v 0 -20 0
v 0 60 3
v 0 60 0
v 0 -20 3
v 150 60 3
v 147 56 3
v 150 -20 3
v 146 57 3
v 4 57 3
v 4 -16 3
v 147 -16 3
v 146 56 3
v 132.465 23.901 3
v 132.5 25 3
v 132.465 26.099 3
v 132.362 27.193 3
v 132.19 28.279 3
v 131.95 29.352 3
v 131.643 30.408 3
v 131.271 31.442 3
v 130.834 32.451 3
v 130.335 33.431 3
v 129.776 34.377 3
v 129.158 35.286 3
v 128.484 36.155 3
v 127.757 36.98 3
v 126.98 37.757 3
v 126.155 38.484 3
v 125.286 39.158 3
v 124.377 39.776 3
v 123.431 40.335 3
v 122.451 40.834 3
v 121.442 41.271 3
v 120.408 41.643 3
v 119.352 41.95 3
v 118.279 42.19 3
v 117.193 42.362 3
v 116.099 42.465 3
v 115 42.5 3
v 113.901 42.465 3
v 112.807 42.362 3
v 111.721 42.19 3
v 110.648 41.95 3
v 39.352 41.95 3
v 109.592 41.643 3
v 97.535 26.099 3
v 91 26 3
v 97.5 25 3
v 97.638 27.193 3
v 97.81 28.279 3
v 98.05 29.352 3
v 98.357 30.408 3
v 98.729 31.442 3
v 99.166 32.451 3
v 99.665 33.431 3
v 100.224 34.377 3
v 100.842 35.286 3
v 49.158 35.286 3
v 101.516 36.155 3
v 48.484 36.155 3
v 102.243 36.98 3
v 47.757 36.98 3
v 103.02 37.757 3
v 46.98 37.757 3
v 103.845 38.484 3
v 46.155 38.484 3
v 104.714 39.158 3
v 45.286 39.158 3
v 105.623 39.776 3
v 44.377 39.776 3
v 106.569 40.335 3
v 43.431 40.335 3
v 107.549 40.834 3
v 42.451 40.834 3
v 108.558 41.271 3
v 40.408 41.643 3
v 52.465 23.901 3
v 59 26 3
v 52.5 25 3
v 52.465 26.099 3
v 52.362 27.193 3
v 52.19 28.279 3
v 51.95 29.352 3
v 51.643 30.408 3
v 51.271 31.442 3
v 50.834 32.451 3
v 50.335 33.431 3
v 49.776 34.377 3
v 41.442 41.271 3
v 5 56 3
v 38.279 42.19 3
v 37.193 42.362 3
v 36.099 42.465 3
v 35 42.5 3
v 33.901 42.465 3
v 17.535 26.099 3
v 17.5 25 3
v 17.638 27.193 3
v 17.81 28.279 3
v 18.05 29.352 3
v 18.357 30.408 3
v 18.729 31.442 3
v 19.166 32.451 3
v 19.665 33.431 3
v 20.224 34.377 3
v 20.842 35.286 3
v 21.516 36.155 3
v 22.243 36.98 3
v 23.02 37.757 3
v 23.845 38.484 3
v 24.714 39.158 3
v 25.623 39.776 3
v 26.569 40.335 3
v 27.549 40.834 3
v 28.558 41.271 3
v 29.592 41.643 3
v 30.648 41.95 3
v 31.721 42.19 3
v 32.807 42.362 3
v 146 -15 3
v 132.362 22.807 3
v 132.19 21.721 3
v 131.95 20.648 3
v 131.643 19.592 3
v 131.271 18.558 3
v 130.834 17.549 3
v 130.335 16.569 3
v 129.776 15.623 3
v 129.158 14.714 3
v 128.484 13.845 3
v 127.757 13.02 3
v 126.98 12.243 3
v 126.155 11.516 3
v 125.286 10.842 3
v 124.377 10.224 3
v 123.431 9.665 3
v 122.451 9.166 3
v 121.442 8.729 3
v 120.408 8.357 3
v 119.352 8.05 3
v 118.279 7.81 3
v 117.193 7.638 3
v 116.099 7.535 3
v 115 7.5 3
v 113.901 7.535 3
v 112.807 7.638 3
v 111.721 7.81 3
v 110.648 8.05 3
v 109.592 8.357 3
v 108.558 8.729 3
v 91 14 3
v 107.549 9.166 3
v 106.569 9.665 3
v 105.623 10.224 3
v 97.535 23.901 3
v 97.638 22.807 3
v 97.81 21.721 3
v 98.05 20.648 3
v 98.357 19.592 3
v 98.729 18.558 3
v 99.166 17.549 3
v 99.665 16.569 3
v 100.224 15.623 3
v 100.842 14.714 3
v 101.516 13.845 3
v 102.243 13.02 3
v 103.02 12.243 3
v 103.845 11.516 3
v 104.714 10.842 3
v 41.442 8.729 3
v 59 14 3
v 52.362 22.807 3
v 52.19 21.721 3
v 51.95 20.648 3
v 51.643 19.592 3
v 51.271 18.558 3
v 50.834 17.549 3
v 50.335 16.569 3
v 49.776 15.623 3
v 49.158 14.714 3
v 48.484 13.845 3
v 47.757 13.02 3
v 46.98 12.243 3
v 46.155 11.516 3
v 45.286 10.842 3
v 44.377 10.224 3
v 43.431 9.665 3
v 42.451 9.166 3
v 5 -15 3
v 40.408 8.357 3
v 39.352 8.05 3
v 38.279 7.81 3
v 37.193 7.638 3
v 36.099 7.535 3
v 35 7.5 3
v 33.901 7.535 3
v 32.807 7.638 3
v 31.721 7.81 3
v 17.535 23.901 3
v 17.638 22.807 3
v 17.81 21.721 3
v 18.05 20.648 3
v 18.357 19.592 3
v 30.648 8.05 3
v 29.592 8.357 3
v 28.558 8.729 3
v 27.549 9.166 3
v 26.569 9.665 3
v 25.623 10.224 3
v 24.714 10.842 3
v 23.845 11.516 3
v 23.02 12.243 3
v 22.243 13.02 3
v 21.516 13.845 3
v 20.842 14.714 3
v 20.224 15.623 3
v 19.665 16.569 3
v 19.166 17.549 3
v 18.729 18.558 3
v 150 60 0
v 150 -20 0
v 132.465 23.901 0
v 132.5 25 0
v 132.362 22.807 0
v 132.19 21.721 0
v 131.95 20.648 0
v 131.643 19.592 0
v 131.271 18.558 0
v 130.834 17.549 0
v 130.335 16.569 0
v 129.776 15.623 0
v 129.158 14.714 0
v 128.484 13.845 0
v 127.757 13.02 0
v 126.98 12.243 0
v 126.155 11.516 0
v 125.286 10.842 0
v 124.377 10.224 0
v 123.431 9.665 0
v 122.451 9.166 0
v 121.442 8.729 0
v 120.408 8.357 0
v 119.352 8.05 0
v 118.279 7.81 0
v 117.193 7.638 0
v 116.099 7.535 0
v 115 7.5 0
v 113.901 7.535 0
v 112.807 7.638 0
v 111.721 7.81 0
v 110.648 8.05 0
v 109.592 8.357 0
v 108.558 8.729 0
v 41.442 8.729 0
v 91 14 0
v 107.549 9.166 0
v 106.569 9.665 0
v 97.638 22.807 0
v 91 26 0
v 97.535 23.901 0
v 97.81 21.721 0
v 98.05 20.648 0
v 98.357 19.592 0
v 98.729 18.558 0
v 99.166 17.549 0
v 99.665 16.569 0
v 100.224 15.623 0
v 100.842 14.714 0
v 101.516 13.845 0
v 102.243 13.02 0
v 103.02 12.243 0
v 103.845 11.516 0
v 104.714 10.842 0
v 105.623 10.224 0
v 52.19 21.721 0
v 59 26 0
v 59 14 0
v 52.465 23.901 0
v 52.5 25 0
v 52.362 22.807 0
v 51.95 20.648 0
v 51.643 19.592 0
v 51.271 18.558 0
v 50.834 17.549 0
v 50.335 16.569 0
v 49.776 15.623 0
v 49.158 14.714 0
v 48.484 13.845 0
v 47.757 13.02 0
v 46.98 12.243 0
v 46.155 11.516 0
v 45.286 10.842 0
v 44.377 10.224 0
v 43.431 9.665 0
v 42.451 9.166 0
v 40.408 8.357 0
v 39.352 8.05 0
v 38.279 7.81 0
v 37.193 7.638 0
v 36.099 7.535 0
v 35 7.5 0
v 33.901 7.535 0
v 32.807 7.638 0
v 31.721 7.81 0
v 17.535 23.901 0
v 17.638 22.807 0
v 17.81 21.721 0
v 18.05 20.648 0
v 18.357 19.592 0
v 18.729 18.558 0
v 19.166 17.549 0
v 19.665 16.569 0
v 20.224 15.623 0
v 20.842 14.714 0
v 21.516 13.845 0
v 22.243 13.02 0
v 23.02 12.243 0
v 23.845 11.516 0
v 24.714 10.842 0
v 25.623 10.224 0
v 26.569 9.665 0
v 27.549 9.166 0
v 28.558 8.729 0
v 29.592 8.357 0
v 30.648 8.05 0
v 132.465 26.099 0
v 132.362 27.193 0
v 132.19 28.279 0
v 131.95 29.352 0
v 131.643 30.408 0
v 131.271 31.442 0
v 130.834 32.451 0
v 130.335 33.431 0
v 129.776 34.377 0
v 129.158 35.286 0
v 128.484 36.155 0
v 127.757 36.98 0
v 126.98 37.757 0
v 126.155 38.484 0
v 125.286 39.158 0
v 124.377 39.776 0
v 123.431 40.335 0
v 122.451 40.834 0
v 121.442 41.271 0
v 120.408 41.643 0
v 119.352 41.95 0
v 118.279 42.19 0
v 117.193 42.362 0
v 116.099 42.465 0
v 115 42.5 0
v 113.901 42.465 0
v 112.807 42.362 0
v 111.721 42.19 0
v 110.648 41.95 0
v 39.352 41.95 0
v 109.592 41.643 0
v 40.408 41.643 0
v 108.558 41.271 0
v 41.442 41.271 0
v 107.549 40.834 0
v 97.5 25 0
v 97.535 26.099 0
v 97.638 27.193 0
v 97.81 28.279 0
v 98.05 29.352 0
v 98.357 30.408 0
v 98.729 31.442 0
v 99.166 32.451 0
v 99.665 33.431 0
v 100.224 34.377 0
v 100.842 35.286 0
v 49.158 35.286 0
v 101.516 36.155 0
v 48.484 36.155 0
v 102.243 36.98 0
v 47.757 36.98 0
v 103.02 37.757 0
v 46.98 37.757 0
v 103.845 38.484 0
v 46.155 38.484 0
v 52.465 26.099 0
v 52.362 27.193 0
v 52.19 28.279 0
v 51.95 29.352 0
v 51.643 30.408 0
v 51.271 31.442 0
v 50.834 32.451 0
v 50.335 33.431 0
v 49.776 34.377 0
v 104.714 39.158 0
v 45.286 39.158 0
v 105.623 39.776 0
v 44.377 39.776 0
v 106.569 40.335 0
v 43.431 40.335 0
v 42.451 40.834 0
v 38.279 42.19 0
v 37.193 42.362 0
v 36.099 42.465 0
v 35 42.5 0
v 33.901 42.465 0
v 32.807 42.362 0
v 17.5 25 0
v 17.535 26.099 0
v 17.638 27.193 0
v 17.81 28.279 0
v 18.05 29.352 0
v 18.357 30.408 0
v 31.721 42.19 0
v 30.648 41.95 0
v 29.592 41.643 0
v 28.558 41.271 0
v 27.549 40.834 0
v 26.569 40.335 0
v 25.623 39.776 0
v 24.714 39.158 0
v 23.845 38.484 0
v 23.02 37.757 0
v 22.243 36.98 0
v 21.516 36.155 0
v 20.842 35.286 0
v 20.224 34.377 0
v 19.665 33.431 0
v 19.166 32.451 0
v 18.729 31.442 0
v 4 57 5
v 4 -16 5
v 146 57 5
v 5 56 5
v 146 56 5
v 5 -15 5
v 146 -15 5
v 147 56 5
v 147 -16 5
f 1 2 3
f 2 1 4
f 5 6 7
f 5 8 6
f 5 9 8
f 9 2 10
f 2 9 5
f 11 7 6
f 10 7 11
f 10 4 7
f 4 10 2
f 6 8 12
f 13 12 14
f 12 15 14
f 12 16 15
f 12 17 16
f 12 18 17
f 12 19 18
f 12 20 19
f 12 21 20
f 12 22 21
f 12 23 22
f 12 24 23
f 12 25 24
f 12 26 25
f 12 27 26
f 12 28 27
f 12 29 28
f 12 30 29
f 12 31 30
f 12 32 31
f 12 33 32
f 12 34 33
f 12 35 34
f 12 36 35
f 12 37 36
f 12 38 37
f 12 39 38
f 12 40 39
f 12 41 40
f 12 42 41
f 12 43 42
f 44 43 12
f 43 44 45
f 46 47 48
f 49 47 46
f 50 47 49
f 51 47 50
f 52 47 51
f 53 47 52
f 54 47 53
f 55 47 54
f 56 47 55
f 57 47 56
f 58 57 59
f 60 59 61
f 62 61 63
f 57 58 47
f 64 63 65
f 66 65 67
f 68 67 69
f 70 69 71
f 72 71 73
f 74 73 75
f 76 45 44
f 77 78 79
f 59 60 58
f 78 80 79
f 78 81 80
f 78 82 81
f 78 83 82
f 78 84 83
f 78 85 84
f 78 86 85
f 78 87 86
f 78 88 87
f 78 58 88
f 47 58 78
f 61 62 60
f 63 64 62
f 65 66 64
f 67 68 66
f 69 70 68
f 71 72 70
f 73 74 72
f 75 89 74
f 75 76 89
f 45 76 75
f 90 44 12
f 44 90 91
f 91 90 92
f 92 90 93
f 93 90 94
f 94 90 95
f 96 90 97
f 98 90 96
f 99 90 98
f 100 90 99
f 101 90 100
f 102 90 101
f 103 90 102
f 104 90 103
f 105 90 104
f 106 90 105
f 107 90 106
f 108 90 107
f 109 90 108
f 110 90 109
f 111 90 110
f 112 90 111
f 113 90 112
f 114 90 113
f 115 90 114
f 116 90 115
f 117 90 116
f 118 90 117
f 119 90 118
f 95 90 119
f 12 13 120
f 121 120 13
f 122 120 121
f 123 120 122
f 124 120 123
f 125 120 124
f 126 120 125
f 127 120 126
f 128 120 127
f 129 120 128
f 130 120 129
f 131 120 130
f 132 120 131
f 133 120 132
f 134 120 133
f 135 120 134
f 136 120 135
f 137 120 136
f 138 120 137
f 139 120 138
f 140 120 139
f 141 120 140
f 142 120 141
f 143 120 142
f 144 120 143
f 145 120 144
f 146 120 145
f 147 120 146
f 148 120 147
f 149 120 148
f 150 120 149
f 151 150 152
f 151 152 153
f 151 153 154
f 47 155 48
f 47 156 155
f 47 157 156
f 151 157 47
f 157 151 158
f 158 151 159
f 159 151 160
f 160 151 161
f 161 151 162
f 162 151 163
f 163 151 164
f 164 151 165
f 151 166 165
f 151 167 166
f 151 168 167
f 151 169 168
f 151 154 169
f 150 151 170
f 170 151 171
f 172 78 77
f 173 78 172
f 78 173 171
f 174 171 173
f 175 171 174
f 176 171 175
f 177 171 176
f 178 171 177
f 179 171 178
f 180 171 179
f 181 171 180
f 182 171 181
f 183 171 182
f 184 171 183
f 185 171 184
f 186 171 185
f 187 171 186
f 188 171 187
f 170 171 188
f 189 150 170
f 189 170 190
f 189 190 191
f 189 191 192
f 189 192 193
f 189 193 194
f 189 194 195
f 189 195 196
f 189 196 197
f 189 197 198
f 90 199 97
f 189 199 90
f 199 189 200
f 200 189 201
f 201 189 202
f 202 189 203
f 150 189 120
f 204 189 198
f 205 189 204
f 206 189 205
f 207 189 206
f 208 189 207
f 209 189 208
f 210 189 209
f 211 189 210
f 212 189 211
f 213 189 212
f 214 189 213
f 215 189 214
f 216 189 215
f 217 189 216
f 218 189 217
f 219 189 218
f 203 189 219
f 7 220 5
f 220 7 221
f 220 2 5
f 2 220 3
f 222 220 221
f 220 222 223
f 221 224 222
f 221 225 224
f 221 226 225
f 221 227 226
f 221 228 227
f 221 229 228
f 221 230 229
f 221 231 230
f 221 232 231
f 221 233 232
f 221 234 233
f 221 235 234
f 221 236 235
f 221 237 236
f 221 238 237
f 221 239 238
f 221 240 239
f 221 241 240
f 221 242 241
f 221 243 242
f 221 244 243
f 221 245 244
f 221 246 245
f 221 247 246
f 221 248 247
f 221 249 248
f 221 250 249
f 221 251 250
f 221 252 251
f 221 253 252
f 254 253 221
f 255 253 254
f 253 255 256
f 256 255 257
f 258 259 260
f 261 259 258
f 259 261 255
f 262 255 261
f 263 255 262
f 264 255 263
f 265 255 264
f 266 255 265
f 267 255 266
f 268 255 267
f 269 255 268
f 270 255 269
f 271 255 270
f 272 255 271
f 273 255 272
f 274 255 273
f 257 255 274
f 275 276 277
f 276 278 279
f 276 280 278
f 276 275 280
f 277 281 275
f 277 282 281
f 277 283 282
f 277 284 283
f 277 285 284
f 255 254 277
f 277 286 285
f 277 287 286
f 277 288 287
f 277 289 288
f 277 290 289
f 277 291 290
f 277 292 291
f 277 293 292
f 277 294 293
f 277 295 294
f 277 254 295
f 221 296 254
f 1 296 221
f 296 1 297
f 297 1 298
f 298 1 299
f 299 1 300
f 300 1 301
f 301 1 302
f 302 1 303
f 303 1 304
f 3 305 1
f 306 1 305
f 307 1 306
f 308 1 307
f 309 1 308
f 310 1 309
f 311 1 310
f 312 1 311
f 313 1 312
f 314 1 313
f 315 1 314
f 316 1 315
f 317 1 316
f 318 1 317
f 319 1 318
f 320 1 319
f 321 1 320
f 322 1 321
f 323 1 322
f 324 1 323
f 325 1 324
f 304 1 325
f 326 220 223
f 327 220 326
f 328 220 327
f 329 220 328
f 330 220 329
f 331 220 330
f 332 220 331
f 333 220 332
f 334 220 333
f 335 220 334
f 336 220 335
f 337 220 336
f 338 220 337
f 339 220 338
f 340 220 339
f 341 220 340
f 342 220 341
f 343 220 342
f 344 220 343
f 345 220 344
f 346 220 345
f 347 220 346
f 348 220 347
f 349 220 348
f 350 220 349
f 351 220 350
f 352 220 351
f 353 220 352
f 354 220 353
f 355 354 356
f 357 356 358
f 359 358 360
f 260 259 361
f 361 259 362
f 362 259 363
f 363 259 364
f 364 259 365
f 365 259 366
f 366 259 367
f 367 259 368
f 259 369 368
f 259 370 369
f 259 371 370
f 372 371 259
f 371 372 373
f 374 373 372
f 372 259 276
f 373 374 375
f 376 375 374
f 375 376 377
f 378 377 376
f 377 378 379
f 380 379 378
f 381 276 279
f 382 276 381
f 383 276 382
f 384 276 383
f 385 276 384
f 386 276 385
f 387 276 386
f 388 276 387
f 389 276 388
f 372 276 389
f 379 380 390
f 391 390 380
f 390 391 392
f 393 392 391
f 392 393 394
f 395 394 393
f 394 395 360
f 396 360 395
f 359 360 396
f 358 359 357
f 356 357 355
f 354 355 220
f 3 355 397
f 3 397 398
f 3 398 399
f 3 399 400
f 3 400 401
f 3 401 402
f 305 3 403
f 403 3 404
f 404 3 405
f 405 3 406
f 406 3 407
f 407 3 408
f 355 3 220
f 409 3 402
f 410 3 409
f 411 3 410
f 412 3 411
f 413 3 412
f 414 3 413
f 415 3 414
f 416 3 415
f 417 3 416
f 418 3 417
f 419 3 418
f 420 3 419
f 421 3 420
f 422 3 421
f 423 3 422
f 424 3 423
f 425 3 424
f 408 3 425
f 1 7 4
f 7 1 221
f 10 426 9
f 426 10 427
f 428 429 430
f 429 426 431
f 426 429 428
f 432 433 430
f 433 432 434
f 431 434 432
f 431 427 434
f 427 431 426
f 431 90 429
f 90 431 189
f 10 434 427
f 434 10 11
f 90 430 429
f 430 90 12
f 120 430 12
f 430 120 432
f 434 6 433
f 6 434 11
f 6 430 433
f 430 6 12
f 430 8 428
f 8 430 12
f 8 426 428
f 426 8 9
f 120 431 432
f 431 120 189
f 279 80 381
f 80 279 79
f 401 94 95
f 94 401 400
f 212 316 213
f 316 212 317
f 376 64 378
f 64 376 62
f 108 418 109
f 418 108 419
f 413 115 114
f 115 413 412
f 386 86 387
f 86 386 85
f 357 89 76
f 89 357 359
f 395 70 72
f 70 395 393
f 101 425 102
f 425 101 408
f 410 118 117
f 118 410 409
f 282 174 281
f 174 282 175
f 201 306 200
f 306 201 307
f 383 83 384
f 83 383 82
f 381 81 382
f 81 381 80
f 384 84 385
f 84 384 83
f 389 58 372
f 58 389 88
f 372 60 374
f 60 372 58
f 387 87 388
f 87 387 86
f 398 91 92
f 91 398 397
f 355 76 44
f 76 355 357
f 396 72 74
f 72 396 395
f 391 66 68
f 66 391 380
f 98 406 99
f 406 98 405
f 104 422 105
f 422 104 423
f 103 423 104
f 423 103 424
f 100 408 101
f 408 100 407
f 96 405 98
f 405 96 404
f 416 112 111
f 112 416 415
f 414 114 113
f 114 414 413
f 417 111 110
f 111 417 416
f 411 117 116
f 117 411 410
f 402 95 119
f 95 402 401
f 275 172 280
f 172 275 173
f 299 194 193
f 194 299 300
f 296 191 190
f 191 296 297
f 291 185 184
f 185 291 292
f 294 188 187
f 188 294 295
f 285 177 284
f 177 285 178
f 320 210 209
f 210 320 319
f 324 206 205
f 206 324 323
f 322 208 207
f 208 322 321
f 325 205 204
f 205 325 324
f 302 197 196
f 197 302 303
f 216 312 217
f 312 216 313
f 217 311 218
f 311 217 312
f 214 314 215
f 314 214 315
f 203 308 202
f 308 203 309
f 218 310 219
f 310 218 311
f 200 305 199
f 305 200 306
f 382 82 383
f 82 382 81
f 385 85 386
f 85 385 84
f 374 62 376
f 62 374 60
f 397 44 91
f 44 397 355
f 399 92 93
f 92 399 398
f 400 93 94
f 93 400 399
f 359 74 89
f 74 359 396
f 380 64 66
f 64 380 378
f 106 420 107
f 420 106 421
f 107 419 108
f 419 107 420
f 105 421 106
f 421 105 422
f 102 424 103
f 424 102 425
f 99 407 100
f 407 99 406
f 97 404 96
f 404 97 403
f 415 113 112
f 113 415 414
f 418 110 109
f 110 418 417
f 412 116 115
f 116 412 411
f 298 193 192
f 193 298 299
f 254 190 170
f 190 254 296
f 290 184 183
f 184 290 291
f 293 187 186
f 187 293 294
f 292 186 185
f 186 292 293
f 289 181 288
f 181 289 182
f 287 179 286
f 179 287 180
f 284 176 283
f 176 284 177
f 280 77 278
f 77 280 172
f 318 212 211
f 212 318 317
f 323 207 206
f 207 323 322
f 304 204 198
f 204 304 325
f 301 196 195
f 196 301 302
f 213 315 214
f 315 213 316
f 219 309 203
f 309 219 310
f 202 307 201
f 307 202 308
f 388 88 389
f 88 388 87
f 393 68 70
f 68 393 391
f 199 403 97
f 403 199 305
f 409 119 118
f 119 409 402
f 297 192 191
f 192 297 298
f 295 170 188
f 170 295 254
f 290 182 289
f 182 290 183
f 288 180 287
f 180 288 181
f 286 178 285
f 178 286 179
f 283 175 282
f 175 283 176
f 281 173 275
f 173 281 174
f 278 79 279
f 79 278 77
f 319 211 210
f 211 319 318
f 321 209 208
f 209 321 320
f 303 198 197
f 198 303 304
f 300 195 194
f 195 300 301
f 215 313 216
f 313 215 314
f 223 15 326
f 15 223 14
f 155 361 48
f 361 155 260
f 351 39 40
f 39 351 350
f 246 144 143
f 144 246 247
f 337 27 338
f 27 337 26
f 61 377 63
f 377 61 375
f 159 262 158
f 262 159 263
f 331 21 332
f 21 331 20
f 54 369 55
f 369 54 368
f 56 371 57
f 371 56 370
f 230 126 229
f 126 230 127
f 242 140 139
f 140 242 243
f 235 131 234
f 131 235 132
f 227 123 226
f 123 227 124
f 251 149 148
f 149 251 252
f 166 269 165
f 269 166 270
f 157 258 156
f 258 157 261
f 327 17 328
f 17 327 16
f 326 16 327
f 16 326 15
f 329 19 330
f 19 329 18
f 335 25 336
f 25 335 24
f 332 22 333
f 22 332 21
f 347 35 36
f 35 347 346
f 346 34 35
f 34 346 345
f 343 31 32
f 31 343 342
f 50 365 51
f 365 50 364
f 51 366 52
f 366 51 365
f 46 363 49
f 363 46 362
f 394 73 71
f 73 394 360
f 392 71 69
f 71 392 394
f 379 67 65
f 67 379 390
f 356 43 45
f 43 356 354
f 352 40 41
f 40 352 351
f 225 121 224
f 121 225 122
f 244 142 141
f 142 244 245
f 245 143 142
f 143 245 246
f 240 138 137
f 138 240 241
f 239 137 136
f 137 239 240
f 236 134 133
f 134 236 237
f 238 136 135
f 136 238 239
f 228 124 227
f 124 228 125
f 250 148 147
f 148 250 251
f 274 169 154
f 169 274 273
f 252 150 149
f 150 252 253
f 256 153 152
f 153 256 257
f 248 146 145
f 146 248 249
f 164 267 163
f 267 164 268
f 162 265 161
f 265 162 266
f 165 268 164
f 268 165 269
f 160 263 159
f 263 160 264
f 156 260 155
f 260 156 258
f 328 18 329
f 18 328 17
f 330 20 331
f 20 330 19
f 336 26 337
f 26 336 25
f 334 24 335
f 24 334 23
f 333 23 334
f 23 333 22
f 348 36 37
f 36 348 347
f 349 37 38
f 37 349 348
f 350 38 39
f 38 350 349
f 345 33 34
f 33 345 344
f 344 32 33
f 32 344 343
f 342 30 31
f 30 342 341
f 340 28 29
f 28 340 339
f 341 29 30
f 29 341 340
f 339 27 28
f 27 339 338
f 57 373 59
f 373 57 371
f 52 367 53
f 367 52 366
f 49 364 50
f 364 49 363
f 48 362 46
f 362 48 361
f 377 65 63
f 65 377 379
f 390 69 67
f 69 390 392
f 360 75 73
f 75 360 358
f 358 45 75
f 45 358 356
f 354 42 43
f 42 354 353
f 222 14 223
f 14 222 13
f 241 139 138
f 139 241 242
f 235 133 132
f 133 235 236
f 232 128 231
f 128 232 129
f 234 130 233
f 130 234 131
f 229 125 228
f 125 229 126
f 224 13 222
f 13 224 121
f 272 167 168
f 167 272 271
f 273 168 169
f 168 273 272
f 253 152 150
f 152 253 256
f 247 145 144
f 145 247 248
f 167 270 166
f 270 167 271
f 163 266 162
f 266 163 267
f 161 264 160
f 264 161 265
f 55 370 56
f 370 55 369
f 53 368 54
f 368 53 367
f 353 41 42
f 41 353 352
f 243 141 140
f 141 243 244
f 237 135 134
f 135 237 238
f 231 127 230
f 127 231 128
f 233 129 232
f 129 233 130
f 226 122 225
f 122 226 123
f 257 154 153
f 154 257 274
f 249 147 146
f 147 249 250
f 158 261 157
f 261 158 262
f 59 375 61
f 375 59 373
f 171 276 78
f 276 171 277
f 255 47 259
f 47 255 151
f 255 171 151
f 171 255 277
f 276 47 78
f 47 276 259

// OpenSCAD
slider2();

module slider2(){
    difference(){
        slider();
        translate([35,25,-5]){
            cylinder(60, 17.5, 17.5, $fn=100);
        }
            translate([115,25,-5]){
            cylinder(60, 17.5, 17.5, $fn=100);
        }
        translate([59, 14,-5]){
            cube([32,12,100]);
        }
    }
}

module slider(){
    translate([0,-20,0]){
        cube([150,80,3]);
    }
    
    //left wall
    translate([4,-16,0]){
        cube([1, 72, 5]);
    }
    
    //right wall
    translate([146,-16,0]){
        cube([1, 72, 5]);
    }
    
    //back wall
    translate([4,56,0]){
        cube([142, 1, 5]);
    }
    
    //front wall
    translate([4,-16,0]){
        cube([142, 1, 5]);
    }
    
}
